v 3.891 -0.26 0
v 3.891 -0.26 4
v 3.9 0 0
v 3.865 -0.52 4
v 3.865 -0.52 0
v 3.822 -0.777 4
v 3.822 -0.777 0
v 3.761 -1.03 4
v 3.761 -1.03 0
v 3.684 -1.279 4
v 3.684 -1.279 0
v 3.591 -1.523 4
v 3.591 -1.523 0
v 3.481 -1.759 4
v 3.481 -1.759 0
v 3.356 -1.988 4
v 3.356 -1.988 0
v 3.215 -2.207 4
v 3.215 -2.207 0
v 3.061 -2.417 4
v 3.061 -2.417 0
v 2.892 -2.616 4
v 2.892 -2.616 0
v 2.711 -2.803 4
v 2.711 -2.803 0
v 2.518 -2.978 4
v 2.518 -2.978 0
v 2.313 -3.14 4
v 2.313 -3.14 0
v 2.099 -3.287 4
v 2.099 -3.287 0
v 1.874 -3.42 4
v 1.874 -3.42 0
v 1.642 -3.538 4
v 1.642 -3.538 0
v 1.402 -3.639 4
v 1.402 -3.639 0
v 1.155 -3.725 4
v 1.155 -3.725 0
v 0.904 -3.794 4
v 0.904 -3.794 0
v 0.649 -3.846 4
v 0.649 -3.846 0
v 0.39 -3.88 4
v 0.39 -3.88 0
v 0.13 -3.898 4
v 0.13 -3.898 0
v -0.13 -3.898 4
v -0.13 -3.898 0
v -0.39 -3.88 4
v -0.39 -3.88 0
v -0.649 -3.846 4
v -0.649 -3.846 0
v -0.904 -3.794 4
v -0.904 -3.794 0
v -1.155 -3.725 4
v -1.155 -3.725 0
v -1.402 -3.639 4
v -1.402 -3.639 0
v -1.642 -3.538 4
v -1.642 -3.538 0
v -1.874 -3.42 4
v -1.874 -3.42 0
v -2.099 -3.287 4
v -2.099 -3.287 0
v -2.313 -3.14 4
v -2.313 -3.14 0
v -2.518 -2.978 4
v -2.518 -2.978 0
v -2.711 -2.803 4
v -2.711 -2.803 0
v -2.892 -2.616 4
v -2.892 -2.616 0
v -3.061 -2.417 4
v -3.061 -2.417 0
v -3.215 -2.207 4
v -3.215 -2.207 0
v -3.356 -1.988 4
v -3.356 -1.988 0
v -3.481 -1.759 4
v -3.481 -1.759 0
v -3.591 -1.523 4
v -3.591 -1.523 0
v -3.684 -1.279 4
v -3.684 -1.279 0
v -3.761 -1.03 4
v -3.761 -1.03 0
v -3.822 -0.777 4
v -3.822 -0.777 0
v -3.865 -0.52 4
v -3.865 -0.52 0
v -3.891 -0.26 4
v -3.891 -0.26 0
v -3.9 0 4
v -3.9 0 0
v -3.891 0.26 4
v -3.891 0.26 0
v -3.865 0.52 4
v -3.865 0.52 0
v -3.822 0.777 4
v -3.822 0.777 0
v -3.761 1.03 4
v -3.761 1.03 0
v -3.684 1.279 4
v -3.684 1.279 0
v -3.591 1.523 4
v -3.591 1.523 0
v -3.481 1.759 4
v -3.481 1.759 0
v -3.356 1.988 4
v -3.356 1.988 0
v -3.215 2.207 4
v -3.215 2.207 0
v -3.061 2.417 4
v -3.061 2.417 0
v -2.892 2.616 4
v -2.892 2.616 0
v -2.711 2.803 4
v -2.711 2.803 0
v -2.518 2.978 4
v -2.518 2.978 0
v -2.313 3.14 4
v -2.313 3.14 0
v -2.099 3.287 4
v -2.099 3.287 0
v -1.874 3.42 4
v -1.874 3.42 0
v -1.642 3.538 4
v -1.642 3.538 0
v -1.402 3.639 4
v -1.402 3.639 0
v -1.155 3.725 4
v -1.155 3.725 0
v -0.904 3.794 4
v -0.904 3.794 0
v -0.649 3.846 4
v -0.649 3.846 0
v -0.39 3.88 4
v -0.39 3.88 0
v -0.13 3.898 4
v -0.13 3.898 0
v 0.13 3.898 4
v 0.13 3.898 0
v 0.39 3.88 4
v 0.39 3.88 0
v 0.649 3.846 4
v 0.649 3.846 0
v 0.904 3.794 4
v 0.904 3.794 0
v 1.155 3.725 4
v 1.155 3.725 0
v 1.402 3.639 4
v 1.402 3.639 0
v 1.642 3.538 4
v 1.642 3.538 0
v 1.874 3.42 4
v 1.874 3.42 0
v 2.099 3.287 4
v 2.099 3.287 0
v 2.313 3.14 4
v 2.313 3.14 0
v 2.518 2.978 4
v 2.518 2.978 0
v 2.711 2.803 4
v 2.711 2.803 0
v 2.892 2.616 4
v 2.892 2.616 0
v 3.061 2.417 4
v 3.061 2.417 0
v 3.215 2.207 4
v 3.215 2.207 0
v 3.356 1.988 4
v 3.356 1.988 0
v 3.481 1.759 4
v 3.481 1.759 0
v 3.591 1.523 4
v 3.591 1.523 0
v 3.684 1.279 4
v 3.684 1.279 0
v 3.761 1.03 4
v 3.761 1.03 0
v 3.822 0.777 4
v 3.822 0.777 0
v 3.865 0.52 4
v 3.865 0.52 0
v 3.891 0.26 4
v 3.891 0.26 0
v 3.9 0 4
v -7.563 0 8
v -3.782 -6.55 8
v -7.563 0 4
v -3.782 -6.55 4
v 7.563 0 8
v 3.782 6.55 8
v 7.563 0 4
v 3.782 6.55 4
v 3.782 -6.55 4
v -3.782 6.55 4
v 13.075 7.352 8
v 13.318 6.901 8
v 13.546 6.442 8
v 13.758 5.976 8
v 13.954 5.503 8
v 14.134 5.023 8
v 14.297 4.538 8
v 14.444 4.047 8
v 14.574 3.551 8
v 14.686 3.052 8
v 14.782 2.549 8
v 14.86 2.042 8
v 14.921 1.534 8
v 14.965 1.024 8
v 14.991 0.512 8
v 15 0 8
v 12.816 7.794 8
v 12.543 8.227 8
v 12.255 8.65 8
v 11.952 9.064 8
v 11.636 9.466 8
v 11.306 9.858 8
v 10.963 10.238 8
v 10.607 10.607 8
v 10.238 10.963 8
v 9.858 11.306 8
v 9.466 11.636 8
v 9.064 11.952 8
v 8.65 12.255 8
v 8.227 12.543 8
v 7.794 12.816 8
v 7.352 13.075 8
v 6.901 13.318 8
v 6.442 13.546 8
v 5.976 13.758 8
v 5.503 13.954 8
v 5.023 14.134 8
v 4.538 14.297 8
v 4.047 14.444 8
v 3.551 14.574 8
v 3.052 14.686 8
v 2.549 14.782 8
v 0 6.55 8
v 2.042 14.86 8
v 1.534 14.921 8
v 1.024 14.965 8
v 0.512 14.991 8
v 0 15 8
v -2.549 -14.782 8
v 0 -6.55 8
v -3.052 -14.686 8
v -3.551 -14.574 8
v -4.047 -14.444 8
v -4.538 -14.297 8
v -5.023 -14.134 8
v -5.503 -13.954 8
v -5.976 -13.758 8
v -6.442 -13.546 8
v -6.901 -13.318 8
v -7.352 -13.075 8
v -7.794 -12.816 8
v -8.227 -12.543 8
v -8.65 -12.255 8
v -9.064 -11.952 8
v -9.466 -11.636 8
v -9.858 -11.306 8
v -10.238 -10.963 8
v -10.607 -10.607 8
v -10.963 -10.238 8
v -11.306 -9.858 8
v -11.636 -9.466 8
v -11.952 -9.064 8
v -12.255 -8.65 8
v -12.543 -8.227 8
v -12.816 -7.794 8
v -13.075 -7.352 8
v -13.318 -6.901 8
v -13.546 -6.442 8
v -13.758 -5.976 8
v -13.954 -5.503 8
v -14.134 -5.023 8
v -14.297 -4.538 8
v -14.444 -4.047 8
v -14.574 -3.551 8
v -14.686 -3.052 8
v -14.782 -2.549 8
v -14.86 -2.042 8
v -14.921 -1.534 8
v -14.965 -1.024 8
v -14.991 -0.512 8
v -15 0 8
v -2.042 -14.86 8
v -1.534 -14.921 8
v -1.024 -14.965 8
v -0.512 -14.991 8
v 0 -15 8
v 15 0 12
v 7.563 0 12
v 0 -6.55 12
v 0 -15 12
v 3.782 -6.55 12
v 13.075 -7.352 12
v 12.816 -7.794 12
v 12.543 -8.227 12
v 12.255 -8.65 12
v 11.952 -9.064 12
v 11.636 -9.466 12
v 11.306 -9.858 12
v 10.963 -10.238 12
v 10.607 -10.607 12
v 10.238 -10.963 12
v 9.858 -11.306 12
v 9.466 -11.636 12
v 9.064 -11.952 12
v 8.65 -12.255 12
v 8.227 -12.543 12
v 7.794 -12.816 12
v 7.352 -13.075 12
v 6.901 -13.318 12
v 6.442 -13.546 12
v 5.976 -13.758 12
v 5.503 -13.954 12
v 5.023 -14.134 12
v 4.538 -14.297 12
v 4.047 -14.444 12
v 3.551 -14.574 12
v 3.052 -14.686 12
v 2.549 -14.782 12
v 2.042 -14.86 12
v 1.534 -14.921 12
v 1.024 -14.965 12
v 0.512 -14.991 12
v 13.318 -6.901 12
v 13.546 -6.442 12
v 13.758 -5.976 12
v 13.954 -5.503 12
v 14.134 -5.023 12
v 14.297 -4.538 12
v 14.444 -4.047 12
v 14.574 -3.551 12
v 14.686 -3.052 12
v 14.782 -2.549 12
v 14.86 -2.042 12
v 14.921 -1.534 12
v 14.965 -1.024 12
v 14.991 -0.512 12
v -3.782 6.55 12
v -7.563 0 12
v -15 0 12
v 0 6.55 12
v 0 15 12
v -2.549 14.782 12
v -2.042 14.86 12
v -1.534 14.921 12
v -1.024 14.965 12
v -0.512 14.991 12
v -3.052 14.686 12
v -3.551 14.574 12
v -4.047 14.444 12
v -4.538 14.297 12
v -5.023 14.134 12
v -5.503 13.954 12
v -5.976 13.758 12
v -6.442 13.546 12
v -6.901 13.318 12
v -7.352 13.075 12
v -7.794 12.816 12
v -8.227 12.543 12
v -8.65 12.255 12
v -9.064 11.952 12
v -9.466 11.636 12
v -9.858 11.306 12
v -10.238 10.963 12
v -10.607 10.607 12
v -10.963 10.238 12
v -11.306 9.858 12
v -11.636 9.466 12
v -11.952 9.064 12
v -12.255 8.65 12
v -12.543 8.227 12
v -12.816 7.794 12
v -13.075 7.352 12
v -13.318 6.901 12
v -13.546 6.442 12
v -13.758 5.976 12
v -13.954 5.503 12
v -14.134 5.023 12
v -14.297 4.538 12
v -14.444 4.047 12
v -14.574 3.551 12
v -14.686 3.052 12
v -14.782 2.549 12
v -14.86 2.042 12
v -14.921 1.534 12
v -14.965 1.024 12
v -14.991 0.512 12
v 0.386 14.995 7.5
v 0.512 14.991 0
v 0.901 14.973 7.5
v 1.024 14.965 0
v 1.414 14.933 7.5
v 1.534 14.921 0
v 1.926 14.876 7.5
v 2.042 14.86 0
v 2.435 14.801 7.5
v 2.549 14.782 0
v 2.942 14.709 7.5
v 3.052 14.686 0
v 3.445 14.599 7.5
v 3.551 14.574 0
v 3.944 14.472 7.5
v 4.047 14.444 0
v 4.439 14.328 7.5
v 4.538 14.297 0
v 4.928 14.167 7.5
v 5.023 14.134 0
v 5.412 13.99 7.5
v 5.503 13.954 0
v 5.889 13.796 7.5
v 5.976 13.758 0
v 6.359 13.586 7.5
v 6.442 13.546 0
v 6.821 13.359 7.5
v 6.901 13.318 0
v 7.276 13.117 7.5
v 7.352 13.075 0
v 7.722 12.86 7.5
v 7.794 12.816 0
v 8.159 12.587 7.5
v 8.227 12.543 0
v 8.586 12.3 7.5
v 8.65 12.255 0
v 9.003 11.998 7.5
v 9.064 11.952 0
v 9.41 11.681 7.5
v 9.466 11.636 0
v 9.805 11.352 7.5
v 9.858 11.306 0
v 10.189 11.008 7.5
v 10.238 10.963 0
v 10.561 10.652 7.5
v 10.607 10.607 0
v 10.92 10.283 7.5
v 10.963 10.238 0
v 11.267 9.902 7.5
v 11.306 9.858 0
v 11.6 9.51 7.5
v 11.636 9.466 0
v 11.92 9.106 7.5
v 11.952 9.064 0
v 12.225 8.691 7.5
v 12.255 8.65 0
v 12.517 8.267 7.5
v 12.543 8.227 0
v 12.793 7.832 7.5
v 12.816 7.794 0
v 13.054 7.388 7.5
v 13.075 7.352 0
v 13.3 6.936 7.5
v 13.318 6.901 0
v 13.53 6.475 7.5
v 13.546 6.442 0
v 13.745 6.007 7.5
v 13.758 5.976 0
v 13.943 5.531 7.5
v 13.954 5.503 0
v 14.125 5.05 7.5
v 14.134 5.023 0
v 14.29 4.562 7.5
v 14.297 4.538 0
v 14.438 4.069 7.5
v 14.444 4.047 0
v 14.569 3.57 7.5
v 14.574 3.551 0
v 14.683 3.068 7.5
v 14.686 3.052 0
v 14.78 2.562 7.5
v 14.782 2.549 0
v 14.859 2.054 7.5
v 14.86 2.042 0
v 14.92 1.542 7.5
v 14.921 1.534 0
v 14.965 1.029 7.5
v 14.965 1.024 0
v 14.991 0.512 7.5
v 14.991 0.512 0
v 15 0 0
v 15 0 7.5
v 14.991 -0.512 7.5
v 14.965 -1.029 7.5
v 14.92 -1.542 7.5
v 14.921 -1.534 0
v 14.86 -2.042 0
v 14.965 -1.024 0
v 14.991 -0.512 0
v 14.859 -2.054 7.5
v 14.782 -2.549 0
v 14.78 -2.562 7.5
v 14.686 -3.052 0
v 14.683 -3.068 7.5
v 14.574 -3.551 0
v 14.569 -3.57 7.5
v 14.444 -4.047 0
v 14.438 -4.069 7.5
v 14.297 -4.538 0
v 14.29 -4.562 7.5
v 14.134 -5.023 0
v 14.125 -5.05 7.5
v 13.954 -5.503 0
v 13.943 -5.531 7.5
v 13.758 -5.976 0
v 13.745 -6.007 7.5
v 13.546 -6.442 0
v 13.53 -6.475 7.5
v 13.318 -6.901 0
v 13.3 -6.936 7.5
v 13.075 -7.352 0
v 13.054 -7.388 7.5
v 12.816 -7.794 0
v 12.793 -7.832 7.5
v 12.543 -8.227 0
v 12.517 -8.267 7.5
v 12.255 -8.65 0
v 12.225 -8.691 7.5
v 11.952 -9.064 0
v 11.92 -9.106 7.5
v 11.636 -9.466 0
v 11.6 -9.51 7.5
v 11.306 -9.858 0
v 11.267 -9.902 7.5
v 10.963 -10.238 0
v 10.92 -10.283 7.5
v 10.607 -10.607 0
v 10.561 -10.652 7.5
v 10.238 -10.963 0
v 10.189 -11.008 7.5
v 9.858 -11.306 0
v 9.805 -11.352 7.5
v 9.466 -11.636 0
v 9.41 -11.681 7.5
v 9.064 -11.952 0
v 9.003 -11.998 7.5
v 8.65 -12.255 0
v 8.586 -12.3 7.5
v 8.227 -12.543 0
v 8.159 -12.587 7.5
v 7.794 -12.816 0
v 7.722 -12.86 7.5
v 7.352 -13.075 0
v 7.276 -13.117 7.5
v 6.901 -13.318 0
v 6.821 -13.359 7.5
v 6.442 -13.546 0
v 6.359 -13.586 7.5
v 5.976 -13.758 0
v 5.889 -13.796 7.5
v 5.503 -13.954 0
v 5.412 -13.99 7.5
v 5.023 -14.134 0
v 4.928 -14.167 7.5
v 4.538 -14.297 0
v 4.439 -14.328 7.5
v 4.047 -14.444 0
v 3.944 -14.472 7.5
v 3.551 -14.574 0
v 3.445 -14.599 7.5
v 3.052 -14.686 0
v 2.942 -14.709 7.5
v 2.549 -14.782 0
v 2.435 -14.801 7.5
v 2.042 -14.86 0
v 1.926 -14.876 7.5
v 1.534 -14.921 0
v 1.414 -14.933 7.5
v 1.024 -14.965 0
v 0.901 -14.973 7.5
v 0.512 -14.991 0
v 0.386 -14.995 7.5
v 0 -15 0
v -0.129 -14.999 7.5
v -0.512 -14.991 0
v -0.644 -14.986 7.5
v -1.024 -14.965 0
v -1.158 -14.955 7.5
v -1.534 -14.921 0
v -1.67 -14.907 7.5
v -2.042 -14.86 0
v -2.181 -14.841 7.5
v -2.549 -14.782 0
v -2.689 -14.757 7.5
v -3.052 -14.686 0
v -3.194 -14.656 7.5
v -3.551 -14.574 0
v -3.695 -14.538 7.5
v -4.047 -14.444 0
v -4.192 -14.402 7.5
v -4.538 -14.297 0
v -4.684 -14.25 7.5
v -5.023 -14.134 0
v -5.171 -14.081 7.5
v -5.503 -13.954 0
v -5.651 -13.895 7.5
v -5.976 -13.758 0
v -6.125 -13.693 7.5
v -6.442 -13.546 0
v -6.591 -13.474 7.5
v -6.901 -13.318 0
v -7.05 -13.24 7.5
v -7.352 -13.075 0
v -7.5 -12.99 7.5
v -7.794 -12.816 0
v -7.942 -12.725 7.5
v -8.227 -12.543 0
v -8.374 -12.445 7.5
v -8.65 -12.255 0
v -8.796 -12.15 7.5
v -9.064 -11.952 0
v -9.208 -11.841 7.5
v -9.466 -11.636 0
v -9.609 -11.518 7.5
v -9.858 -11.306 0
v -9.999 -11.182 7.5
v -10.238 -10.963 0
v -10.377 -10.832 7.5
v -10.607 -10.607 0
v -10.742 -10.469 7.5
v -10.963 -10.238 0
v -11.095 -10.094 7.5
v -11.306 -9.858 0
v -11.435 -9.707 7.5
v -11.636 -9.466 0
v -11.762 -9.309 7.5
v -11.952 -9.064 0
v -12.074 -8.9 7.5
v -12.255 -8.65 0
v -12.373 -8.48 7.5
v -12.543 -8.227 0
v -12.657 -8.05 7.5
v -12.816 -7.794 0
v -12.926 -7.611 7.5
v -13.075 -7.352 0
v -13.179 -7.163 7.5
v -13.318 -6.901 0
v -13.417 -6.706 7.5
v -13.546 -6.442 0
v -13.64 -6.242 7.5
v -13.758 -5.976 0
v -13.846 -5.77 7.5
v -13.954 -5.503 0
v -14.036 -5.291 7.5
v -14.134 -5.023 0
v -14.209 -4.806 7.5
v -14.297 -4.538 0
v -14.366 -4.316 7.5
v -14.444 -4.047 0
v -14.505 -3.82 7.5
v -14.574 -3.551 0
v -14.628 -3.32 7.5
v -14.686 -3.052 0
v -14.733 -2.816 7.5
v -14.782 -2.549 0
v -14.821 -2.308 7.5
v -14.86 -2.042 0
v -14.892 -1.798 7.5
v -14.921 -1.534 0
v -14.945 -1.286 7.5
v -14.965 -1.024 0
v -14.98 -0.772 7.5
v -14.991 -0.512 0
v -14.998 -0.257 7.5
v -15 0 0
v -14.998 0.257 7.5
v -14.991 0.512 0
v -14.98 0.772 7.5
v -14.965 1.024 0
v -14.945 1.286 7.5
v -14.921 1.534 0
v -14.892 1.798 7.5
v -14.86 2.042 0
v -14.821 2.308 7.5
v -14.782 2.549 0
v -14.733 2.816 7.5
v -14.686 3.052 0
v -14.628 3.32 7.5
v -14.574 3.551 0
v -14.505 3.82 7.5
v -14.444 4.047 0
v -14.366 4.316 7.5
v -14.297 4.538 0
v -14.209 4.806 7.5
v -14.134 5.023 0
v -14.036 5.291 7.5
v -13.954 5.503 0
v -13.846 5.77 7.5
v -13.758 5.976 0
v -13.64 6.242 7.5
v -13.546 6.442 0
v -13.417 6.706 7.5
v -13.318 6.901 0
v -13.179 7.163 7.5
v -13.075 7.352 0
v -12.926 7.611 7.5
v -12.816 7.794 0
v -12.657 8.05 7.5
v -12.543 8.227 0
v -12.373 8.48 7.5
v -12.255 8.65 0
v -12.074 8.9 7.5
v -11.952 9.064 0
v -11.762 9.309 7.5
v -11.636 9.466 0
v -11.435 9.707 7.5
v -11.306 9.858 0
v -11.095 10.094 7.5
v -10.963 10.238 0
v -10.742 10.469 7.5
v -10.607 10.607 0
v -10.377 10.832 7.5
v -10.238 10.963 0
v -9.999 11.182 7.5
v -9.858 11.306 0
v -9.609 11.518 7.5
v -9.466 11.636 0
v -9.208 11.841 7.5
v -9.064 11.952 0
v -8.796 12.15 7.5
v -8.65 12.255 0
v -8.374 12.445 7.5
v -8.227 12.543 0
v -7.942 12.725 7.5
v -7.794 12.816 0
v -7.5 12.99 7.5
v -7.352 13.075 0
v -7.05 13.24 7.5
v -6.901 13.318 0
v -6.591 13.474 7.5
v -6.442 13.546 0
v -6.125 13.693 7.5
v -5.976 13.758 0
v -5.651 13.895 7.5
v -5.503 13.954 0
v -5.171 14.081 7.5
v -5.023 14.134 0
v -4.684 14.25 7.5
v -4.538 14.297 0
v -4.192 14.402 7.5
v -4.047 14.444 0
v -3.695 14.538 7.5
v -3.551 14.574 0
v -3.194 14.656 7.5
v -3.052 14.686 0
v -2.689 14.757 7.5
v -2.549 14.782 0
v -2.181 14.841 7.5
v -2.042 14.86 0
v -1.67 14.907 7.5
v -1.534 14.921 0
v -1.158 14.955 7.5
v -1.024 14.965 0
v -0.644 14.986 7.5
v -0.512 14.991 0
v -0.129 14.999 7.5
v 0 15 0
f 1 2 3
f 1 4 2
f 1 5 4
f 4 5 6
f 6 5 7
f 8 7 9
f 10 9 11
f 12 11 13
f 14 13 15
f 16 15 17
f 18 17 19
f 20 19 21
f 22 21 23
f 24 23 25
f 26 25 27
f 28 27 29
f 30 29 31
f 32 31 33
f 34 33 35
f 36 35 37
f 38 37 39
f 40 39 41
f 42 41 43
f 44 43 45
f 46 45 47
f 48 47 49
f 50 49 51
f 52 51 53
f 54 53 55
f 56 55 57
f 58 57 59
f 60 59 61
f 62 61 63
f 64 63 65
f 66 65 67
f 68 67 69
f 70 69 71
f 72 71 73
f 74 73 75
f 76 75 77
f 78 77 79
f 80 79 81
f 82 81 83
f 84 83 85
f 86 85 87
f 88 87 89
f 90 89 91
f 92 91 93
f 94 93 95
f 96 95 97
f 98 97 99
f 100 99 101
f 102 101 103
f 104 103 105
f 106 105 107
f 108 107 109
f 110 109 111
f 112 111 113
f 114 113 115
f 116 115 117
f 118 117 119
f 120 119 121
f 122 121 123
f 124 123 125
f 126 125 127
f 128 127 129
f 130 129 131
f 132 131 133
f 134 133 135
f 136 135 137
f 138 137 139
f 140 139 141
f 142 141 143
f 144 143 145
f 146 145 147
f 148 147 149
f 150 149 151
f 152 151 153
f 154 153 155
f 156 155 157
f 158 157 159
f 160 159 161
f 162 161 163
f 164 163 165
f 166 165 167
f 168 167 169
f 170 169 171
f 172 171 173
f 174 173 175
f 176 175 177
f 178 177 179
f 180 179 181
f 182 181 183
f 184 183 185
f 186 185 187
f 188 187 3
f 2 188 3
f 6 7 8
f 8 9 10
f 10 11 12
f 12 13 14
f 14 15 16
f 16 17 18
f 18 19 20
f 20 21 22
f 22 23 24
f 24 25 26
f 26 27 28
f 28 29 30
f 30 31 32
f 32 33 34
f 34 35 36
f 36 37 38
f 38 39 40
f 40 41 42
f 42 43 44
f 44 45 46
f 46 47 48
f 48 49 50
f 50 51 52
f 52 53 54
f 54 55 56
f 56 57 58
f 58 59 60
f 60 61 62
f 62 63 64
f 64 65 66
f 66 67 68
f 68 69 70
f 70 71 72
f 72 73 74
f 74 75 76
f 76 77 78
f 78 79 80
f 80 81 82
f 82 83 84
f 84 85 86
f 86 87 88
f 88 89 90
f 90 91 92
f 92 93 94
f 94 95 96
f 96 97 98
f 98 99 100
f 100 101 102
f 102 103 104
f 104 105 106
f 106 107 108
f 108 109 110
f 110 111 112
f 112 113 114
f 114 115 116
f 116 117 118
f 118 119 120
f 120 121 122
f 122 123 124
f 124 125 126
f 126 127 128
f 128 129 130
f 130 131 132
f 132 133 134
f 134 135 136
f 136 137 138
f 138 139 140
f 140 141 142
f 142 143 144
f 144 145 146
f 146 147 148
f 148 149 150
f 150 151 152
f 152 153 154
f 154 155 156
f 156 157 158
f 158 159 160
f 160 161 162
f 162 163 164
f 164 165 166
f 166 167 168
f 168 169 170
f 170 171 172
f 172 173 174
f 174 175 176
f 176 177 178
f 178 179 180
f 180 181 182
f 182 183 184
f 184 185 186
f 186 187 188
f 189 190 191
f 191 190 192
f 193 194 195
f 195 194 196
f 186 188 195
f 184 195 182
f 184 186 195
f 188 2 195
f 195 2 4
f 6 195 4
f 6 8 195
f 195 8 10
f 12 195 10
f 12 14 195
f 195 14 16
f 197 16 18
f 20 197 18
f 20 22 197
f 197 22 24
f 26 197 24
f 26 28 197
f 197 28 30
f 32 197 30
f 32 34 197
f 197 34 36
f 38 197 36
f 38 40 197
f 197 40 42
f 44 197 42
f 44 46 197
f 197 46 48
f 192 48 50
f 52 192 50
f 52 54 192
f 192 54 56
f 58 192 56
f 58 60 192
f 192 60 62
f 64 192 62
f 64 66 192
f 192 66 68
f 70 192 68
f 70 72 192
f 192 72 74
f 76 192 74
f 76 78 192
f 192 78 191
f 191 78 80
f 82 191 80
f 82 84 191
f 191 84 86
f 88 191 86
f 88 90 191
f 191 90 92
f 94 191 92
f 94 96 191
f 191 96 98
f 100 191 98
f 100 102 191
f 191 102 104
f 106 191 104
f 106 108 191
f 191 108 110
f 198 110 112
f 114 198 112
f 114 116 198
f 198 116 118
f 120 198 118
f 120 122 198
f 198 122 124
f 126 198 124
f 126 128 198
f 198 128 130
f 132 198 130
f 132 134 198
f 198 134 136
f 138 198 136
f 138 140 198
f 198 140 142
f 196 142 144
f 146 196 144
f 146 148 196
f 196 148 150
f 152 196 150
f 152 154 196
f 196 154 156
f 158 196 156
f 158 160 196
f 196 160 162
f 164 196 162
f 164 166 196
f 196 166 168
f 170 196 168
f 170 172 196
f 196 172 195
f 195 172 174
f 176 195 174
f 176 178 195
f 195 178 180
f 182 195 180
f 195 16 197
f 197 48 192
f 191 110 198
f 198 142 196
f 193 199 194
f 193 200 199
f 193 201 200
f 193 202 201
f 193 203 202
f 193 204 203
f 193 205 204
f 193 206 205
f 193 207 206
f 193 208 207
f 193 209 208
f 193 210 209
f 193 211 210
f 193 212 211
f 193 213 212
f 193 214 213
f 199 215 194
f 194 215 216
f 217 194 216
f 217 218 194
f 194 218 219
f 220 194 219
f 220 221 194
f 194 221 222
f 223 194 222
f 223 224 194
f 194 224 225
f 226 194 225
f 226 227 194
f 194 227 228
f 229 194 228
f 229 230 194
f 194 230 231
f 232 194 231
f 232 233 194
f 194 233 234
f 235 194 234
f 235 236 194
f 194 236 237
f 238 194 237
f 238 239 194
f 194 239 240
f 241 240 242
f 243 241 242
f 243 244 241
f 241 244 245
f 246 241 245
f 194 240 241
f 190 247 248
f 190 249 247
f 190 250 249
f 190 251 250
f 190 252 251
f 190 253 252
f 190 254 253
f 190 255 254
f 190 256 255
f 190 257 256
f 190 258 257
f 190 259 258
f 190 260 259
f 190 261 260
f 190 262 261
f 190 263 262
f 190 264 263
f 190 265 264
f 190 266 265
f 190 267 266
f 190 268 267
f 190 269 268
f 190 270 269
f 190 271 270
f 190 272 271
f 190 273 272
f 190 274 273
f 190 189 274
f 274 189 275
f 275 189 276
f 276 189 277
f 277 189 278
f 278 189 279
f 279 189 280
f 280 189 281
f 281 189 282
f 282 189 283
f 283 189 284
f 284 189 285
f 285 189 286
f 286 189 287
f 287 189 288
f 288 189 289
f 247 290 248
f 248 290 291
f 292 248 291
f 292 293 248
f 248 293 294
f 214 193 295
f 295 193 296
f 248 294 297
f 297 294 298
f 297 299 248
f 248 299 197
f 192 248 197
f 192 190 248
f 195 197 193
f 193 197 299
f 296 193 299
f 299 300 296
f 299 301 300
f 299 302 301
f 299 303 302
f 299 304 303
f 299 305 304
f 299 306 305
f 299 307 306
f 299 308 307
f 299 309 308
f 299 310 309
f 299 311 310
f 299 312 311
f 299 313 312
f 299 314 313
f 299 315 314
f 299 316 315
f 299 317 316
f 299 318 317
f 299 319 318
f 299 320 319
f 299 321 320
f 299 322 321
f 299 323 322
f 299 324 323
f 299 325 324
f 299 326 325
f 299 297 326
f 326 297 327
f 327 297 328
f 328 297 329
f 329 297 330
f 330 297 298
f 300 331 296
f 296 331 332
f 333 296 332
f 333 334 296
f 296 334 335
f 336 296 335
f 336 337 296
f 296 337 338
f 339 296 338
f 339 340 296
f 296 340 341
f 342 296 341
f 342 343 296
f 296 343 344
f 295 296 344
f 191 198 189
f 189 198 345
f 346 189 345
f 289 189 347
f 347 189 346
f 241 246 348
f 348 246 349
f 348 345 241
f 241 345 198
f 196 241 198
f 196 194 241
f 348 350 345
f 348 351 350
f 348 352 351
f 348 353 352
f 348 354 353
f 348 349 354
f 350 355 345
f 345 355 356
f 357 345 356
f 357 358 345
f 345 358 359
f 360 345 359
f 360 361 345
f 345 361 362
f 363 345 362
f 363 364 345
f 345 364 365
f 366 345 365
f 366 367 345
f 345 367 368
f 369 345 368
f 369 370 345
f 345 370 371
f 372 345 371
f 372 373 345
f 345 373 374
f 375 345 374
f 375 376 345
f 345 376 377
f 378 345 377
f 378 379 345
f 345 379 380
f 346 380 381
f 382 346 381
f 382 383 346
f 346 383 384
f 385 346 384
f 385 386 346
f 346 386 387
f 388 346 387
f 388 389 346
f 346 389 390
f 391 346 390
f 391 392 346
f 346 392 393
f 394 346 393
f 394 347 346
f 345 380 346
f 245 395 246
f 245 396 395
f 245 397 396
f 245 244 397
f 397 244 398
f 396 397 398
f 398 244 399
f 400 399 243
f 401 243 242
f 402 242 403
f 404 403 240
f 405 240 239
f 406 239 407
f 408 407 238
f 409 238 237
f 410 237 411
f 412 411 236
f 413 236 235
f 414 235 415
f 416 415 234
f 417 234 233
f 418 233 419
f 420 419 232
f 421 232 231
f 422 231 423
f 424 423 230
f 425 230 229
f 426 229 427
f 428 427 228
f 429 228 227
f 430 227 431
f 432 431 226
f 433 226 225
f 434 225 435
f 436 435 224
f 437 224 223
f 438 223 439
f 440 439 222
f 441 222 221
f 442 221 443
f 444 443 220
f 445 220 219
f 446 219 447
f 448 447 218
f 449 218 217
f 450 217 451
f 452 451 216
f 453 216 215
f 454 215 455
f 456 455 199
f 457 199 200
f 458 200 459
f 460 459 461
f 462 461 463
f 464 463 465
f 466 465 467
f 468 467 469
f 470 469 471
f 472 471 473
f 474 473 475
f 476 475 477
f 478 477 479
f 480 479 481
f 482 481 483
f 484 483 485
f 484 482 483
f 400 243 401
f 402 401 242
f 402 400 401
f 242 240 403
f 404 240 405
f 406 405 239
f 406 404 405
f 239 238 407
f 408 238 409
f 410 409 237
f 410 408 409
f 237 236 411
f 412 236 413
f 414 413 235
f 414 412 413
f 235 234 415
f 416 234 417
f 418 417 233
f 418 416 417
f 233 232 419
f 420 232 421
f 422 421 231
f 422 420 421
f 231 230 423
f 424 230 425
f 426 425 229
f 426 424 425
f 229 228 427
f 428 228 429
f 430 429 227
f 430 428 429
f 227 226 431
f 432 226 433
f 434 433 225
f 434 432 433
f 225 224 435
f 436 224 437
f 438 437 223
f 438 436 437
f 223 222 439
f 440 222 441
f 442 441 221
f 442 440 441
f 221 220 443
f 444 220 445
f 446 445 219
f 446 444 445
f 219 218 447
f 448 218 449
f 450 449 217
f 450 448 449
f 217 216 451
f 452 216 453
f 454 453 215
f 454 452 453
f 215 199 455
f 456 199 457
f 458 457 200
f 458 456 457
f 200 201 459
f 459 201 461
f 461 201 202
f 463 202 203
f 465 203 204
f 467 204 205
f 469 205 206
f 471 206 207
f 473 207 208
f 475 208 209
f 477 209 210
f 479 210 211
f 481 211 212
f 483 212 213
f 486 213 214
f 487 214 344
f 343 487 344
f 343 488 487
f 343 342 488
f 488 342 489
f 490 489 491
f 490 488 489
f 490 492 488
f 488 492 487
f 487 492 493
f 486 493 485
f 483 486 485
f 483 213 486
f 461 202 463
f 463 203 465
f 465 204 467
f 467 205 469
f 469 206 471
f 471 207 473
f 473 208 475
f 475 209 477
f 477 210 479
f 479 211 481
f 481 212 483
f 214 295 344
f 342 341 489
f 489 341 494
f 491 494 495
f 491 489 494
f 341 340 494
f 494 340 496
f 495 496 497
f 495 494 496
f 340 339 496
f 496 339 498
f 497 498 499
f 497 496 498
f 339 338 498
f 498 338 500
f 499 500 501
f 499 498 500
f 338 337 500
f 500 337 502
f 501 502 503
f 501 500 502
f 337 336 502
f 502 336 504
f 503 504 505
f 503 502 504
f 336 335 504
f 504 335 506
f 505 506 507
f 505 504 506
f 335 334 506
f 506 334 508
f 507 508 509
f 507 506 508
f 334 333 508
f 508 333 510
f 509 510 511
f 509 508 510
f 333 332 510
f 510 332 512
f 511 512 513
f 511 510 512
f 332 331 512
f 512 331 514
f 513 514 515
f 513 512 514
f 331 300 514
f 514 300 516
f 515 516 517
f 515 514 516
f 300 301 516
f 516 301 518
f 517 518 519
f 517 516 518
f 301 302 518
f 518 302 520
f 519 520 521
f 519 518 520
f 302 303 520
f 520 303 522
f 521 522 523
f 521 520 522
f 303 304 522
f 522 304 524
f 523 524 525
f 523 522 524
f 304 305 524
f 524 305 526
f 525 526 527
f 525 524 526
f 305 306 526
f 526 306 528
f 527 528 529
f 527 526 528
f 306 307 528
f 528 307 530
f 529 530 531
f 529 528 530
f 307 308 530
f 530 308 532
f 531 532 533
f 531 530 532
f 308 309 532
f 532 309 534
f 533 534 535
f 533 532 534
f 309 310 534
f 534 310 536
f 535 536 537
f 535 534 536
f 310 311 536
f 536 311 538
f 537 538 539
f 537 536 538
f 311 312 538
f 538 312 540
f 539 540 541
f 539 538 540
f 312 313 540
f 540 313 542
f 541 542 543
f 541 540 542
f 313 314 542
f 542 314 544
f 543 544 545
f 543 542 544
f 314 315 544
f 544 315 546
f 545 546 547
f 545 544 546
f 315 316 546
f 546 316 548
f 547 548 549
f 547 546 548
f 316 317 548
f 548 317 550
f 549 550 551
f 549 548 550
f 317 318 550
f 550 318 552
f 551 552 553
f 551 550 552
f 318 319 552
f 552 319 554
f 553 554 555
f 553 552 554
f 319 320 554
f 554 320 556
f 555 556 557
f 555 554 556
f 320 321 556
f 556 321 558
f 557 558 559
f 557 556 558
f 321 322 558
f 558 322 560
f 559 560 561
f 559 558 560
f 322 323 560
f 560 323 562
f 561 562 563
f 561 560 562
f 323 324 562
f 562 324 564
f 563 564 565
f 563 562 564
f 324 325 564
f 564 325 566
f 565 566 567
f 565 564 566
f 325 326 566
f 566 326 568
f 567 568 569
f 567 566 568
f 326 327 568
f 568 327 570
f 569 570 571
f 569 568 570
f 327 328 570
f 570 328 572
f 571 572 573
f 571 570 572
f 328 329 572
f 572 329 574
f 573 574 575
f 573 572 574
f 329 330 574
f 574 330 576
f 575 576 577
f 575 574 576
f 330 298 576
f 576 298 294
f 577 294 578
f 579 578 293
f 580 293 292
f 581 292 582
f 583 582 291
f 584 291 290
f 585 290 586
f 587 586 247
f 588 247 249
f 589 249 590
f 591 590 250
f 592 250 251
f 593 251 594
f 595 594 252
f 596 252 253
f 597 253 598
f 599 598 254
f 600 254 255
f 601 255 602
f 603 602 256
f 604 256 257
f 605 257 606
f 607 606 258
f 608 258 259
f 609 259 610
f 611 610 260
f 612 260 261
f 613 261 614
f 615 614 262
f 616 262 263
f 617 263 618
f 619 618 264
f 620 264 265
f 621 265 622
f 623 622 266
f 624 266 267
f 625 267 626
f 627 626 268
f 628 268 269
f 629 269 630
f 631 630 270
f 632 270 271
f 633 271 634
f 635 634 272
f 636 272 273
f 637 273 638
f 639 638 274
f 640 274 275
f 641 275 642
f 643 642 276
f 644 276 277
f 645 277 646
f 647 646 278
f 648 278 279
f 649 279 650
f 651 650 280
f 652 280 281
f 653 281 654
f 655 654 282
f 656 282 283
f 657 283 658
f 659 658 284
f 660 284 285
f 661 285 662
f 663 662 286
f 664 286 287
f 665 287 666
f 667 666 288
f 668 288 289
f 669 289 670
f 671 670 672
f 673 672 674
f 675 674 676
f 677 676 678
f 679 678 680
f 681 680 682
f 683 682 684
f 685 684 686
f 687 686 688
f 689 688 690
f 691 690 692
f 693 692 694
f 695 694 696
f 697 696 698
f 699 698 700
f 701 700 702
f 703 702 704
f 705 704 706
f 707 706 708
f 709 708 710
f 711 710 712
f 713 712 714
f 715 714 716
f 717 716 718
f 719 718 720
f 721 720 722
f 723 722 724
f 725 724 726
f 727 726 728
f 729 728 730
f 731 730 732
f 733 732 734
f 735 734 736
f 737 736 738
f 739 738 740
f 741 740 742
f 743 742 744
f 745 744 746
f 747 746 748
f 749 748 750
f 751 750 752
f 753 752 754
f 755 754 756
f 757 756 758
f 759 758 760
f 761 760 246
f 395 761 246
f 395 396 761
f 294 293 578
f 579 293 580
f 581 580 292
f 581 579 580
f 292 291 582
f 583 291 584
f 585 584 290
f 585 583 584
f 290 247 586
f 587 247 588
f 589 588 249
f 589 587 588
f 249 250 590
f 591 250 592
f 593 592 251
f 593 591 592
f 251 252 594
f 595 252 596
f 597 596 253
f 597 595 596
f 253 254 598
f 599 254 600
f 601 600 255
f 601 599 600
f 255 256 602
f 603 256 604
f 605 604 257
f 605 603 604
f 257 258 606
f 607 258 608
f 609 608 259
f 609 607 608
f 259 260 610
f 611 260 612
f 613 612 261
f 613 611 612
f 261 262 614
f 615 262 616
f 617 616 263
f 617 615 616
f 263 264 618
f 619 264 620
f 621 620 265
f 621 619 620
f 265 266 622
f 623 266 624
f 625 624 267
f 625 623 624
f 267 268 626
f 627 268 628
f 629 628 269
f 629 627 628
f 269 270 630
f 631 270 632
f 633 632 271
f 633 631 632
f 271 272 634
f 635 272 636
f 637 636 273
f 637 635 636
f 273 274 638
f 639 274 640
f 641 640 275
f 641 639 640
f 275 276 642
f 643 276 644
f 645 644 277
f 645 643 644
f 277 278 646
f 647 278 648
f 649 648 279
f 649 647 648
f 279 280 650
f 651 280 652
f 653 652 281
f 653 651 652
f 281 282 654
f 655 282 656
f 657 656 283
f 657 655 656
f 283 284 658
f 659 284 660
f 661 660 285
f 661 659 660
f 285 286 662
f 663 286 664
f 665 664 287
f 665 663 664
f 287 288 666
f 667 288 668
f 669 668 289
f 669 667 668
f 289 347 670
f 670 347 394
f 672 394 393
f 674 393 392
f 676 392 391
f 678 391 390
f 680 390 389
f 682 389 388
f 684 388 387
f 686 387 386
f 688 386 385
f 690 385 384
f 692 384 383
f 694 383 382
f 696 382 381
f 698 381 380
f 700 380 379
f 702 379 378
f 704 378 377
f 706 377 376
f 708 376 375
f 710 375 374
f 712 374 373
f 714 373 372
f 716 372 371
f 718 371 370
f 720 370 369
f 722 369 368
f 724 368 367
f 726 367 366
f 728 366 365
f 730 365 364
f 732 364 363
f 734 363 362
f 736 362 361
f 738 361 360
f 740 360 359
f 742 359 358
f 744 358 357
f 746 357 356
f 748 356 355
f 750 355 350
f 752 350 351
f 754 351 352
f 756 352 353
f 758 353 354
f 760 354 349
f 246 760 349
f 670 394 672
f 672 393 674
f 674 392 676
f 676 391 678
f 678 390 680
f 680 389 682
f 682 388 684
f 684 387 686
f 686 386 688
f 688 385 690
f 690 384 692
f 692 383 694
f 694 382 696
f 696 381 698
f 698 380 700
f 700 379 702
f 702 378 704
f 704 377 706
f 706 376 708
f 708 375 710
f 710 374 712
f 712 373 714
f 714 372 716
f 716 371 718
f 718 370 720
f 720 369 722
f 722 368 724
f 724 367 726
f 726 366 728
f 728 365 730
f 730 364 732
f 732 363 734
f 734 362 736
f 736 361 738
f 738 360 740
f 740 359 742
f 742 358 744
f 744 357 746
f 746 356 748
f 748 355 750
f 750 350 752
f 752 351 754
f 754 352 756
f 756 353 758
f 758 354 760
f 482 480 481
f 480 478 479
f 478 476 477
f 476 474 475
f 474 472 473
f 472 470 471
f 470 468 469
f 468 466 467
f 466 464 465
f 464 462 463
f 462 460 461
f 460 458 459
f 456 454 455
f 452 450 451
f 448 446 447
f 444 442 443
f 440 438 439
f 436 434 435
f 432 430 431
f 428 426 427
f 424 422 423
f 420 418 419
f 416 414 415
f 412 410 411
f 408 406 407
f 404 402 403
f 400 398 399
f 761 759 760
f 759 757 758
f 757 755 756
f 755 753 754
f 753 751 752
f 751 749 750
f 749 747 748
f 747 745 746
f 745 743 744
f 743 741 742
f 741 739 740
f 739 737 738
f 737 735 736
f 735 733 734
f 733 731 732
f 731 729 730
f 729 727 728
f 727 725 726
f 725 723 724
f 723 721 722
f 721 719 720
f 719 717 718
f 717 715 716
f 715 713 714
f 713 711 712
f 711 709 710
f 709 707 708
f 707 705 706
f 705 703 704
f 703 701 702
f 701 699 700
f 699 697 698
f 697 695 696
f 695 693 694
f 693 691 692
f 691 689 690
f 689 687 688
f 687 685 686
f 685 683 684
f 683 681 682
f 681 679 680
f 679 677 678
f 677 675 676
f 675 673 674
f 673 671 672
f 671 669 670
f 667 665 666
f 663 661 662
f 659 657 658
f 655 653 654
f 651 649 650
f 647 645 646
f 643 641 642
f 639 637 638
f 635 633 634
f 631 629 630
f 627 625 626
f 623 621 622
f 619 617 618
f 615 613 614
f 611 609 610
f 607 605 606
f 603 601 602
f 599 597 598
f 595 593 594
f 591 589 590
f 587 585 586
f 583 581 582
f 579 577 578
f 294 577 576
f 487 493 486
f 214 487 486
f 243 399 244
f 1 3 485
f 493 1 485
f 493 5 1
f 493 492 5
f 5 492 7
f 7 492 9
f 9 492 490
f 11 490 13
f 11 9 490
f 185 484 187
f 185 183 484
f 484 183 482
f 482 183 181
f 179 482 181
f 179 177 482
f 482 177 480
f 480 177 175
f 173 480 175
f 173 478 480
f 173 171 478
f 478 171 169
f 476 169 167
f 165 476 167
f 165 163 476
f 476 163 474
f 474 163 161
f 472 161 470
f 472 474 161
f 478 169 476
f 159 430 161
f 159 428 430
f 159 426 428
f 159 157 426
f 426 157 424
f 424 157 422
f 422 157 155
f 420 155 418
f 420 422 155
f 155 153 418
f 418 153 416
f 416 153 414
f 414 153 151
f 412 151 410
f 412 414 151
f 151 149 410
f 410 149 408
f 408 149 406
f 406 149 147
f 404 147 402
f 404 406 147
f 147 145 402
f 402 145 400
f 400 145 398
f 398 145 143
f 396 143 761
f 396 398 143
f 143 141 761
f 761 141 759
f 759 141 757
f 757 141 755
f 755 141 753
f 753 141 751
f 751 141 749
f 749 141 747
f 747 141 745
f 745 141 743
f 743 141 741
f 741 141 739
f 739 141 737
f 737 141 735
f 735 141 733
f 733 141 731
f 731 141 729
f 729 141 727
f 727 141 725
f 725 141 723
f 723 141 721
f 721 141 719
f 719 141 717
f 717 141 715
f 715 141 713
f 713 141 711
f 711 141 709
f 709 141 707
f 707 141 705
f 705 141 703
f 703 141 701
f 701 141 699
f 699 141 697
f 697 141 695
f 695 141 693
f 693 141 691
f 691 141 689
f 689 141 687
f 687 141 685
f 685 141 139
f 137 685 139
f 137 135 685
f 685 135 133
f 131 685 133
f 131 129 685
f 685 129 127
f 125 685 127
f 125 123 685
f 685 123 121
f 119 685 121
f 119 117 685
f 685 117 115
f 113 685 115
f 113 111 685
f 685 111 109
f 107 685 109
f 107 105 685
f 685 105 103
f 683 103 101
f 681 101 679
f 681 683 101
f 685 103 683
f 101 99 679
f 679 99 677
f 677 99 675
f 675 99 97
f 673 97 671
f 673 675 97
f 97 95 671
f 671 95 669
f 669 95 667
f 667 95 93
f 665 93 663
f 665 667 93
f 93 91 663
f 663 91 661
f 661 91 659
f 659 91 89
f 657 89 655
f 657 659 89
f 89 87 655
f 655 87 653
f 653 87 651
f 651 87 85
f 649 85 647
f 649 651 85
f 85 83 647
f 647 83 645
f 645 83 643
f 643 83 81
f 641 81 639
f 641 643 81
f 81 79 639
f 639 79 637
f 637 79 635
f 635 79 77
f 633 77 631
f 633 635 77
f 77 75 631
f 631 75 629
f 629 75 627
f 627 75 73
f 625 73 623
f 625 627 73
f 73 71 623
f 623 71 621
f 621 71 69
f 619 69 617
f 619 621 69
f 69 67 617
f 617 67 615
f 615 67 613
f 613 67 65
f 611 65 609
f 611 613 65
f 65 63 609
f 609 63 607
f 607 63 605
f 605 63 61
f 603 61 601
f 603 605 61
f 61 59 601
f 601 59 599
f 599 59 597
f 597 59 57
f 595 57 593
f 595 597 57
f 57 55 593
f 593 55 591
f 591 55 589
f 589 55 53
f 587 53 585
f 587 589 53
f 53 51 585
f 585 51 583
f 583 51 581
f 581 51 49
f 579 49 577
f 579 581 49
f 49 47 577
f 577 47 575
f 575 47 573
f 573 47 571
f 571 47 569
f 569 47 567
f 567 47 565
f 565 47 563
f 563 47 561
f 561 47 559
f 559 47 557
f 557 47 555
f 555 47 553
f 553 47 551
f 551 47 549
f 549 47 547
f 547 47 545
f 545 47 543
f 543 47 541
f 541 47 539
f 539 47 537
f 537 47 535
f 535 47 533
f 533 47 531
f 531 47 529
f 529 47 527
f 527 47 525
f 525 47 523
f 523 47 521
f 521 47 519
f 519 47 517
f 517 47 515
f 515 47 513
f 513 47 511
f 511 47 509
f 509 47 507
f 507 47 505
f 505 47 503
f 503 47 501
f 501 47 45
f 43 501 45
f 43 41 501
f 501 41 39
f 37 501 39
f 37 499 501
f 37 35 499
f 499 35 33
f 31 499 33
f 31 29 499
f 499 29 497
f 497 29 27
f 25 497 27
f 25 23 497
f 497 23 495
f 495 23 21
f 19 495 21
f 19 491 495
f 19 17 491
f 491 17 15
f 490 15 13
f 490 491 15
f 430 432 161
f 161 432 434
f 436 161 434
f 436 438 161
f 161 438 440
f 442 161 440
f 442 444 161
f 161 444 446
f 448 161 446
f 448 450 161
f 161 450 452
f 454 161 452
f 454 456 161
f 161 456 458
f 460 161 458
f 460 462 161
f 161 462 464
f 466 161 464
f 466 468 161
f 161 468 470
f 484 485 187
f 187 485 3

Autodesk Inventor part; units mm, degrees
ref_plane "YZ Plane" through (0, 0, 0) normal (1, 0, 0) x (0, 1, 0)
ref_plane "XZ Plane" through (0, 0, 0) normal (0, 1, 0) x (-1, 0, 0)
ref_plane "XY Plane" through (0, 0, 0) normal (0, 0, 1) x (1, 0, 0)
sketch "Sketch1" plane through (0, 0, 0) normal (0, 0, 1) x (1, 0, 0)
  circle A0 centre (0, 0) radius 15
  dimension "d0" = 30
extrude "Extrusion1" add sketch "Sketch1" along normal blind 8
sketch "Sketch2" plane through (0, 0, 8) normal (0, 0, 1) x (1, 0, 0)
  circle A0 centre (0, 0) radius 15 projected
  line L0 (-3.7816, 6.55) -> (0, 6.55)
  line L1 (3.7816, 6.55) -> (7.5633, 0)
  line L2 (7.5633, 0) -> (3.7816, -6.55)
  line L3 (3.7816, -6.55) -> (-3.7816, -6.55)
  line L4 (-3.7816, -6.55) -> (-7.5633, 0)
  line L5 (-7.5633, 0) -> (-3.7816, 6.55)
  line L6 (0, -15) -> (0, -6.55)
  line L7 (-15, 0) -> (-7.5633, 0)
  line L8 (0, 6.55) -> (0, 15)
  line L9 (7.5633, 0) -> (15, 0)
  line L10 (0, 6.55) -> (3.7816, 6.55)
  dimension "d4" = 13.1
extrude "Extrusion2" add sketch "Sketch2" along normal blind 4 contours A0 L6 L3 L2 L9 | L8 L0 L5 L7 A0
sketch "Sketch3" plane through (0, 0, 8) normal (0, 0, 1) x (1, 0, 0)
  arc A0 (-15, 0) -> (0, -15) centre (0, 0) ccw projected
  line L0 (-3.7816, 6.55) -> (3.7816, 6.55)
  line L1 (3.7816, 6.55) -> (7.5633, 0)
  line L2 (7.5633, 0) -> (3.7816, -6.55)
  line L3 (3.7816, -6.55) -> (-3.7816, -6.55)
  line L4 (-3.7816, -6.55) -> (-7.5633, 0)
  line L5 (-7.5633, 0) -> (-3.7816, 6.55)
extrude "Extrusion3" cut sketch "Sketch3" against normal blind 4
sketch "Sketch4" plane through (0, 0, 4) normal (0, 0, 1) x (1, 0, 0)
  circle A0 centre (0, 0) radius 3.9
  dimension "d10" = 7.8
extrude "Extrusion4" cut sketch "Sketch4" against normal blind 10
properties part number "Coil Coupling_1"
